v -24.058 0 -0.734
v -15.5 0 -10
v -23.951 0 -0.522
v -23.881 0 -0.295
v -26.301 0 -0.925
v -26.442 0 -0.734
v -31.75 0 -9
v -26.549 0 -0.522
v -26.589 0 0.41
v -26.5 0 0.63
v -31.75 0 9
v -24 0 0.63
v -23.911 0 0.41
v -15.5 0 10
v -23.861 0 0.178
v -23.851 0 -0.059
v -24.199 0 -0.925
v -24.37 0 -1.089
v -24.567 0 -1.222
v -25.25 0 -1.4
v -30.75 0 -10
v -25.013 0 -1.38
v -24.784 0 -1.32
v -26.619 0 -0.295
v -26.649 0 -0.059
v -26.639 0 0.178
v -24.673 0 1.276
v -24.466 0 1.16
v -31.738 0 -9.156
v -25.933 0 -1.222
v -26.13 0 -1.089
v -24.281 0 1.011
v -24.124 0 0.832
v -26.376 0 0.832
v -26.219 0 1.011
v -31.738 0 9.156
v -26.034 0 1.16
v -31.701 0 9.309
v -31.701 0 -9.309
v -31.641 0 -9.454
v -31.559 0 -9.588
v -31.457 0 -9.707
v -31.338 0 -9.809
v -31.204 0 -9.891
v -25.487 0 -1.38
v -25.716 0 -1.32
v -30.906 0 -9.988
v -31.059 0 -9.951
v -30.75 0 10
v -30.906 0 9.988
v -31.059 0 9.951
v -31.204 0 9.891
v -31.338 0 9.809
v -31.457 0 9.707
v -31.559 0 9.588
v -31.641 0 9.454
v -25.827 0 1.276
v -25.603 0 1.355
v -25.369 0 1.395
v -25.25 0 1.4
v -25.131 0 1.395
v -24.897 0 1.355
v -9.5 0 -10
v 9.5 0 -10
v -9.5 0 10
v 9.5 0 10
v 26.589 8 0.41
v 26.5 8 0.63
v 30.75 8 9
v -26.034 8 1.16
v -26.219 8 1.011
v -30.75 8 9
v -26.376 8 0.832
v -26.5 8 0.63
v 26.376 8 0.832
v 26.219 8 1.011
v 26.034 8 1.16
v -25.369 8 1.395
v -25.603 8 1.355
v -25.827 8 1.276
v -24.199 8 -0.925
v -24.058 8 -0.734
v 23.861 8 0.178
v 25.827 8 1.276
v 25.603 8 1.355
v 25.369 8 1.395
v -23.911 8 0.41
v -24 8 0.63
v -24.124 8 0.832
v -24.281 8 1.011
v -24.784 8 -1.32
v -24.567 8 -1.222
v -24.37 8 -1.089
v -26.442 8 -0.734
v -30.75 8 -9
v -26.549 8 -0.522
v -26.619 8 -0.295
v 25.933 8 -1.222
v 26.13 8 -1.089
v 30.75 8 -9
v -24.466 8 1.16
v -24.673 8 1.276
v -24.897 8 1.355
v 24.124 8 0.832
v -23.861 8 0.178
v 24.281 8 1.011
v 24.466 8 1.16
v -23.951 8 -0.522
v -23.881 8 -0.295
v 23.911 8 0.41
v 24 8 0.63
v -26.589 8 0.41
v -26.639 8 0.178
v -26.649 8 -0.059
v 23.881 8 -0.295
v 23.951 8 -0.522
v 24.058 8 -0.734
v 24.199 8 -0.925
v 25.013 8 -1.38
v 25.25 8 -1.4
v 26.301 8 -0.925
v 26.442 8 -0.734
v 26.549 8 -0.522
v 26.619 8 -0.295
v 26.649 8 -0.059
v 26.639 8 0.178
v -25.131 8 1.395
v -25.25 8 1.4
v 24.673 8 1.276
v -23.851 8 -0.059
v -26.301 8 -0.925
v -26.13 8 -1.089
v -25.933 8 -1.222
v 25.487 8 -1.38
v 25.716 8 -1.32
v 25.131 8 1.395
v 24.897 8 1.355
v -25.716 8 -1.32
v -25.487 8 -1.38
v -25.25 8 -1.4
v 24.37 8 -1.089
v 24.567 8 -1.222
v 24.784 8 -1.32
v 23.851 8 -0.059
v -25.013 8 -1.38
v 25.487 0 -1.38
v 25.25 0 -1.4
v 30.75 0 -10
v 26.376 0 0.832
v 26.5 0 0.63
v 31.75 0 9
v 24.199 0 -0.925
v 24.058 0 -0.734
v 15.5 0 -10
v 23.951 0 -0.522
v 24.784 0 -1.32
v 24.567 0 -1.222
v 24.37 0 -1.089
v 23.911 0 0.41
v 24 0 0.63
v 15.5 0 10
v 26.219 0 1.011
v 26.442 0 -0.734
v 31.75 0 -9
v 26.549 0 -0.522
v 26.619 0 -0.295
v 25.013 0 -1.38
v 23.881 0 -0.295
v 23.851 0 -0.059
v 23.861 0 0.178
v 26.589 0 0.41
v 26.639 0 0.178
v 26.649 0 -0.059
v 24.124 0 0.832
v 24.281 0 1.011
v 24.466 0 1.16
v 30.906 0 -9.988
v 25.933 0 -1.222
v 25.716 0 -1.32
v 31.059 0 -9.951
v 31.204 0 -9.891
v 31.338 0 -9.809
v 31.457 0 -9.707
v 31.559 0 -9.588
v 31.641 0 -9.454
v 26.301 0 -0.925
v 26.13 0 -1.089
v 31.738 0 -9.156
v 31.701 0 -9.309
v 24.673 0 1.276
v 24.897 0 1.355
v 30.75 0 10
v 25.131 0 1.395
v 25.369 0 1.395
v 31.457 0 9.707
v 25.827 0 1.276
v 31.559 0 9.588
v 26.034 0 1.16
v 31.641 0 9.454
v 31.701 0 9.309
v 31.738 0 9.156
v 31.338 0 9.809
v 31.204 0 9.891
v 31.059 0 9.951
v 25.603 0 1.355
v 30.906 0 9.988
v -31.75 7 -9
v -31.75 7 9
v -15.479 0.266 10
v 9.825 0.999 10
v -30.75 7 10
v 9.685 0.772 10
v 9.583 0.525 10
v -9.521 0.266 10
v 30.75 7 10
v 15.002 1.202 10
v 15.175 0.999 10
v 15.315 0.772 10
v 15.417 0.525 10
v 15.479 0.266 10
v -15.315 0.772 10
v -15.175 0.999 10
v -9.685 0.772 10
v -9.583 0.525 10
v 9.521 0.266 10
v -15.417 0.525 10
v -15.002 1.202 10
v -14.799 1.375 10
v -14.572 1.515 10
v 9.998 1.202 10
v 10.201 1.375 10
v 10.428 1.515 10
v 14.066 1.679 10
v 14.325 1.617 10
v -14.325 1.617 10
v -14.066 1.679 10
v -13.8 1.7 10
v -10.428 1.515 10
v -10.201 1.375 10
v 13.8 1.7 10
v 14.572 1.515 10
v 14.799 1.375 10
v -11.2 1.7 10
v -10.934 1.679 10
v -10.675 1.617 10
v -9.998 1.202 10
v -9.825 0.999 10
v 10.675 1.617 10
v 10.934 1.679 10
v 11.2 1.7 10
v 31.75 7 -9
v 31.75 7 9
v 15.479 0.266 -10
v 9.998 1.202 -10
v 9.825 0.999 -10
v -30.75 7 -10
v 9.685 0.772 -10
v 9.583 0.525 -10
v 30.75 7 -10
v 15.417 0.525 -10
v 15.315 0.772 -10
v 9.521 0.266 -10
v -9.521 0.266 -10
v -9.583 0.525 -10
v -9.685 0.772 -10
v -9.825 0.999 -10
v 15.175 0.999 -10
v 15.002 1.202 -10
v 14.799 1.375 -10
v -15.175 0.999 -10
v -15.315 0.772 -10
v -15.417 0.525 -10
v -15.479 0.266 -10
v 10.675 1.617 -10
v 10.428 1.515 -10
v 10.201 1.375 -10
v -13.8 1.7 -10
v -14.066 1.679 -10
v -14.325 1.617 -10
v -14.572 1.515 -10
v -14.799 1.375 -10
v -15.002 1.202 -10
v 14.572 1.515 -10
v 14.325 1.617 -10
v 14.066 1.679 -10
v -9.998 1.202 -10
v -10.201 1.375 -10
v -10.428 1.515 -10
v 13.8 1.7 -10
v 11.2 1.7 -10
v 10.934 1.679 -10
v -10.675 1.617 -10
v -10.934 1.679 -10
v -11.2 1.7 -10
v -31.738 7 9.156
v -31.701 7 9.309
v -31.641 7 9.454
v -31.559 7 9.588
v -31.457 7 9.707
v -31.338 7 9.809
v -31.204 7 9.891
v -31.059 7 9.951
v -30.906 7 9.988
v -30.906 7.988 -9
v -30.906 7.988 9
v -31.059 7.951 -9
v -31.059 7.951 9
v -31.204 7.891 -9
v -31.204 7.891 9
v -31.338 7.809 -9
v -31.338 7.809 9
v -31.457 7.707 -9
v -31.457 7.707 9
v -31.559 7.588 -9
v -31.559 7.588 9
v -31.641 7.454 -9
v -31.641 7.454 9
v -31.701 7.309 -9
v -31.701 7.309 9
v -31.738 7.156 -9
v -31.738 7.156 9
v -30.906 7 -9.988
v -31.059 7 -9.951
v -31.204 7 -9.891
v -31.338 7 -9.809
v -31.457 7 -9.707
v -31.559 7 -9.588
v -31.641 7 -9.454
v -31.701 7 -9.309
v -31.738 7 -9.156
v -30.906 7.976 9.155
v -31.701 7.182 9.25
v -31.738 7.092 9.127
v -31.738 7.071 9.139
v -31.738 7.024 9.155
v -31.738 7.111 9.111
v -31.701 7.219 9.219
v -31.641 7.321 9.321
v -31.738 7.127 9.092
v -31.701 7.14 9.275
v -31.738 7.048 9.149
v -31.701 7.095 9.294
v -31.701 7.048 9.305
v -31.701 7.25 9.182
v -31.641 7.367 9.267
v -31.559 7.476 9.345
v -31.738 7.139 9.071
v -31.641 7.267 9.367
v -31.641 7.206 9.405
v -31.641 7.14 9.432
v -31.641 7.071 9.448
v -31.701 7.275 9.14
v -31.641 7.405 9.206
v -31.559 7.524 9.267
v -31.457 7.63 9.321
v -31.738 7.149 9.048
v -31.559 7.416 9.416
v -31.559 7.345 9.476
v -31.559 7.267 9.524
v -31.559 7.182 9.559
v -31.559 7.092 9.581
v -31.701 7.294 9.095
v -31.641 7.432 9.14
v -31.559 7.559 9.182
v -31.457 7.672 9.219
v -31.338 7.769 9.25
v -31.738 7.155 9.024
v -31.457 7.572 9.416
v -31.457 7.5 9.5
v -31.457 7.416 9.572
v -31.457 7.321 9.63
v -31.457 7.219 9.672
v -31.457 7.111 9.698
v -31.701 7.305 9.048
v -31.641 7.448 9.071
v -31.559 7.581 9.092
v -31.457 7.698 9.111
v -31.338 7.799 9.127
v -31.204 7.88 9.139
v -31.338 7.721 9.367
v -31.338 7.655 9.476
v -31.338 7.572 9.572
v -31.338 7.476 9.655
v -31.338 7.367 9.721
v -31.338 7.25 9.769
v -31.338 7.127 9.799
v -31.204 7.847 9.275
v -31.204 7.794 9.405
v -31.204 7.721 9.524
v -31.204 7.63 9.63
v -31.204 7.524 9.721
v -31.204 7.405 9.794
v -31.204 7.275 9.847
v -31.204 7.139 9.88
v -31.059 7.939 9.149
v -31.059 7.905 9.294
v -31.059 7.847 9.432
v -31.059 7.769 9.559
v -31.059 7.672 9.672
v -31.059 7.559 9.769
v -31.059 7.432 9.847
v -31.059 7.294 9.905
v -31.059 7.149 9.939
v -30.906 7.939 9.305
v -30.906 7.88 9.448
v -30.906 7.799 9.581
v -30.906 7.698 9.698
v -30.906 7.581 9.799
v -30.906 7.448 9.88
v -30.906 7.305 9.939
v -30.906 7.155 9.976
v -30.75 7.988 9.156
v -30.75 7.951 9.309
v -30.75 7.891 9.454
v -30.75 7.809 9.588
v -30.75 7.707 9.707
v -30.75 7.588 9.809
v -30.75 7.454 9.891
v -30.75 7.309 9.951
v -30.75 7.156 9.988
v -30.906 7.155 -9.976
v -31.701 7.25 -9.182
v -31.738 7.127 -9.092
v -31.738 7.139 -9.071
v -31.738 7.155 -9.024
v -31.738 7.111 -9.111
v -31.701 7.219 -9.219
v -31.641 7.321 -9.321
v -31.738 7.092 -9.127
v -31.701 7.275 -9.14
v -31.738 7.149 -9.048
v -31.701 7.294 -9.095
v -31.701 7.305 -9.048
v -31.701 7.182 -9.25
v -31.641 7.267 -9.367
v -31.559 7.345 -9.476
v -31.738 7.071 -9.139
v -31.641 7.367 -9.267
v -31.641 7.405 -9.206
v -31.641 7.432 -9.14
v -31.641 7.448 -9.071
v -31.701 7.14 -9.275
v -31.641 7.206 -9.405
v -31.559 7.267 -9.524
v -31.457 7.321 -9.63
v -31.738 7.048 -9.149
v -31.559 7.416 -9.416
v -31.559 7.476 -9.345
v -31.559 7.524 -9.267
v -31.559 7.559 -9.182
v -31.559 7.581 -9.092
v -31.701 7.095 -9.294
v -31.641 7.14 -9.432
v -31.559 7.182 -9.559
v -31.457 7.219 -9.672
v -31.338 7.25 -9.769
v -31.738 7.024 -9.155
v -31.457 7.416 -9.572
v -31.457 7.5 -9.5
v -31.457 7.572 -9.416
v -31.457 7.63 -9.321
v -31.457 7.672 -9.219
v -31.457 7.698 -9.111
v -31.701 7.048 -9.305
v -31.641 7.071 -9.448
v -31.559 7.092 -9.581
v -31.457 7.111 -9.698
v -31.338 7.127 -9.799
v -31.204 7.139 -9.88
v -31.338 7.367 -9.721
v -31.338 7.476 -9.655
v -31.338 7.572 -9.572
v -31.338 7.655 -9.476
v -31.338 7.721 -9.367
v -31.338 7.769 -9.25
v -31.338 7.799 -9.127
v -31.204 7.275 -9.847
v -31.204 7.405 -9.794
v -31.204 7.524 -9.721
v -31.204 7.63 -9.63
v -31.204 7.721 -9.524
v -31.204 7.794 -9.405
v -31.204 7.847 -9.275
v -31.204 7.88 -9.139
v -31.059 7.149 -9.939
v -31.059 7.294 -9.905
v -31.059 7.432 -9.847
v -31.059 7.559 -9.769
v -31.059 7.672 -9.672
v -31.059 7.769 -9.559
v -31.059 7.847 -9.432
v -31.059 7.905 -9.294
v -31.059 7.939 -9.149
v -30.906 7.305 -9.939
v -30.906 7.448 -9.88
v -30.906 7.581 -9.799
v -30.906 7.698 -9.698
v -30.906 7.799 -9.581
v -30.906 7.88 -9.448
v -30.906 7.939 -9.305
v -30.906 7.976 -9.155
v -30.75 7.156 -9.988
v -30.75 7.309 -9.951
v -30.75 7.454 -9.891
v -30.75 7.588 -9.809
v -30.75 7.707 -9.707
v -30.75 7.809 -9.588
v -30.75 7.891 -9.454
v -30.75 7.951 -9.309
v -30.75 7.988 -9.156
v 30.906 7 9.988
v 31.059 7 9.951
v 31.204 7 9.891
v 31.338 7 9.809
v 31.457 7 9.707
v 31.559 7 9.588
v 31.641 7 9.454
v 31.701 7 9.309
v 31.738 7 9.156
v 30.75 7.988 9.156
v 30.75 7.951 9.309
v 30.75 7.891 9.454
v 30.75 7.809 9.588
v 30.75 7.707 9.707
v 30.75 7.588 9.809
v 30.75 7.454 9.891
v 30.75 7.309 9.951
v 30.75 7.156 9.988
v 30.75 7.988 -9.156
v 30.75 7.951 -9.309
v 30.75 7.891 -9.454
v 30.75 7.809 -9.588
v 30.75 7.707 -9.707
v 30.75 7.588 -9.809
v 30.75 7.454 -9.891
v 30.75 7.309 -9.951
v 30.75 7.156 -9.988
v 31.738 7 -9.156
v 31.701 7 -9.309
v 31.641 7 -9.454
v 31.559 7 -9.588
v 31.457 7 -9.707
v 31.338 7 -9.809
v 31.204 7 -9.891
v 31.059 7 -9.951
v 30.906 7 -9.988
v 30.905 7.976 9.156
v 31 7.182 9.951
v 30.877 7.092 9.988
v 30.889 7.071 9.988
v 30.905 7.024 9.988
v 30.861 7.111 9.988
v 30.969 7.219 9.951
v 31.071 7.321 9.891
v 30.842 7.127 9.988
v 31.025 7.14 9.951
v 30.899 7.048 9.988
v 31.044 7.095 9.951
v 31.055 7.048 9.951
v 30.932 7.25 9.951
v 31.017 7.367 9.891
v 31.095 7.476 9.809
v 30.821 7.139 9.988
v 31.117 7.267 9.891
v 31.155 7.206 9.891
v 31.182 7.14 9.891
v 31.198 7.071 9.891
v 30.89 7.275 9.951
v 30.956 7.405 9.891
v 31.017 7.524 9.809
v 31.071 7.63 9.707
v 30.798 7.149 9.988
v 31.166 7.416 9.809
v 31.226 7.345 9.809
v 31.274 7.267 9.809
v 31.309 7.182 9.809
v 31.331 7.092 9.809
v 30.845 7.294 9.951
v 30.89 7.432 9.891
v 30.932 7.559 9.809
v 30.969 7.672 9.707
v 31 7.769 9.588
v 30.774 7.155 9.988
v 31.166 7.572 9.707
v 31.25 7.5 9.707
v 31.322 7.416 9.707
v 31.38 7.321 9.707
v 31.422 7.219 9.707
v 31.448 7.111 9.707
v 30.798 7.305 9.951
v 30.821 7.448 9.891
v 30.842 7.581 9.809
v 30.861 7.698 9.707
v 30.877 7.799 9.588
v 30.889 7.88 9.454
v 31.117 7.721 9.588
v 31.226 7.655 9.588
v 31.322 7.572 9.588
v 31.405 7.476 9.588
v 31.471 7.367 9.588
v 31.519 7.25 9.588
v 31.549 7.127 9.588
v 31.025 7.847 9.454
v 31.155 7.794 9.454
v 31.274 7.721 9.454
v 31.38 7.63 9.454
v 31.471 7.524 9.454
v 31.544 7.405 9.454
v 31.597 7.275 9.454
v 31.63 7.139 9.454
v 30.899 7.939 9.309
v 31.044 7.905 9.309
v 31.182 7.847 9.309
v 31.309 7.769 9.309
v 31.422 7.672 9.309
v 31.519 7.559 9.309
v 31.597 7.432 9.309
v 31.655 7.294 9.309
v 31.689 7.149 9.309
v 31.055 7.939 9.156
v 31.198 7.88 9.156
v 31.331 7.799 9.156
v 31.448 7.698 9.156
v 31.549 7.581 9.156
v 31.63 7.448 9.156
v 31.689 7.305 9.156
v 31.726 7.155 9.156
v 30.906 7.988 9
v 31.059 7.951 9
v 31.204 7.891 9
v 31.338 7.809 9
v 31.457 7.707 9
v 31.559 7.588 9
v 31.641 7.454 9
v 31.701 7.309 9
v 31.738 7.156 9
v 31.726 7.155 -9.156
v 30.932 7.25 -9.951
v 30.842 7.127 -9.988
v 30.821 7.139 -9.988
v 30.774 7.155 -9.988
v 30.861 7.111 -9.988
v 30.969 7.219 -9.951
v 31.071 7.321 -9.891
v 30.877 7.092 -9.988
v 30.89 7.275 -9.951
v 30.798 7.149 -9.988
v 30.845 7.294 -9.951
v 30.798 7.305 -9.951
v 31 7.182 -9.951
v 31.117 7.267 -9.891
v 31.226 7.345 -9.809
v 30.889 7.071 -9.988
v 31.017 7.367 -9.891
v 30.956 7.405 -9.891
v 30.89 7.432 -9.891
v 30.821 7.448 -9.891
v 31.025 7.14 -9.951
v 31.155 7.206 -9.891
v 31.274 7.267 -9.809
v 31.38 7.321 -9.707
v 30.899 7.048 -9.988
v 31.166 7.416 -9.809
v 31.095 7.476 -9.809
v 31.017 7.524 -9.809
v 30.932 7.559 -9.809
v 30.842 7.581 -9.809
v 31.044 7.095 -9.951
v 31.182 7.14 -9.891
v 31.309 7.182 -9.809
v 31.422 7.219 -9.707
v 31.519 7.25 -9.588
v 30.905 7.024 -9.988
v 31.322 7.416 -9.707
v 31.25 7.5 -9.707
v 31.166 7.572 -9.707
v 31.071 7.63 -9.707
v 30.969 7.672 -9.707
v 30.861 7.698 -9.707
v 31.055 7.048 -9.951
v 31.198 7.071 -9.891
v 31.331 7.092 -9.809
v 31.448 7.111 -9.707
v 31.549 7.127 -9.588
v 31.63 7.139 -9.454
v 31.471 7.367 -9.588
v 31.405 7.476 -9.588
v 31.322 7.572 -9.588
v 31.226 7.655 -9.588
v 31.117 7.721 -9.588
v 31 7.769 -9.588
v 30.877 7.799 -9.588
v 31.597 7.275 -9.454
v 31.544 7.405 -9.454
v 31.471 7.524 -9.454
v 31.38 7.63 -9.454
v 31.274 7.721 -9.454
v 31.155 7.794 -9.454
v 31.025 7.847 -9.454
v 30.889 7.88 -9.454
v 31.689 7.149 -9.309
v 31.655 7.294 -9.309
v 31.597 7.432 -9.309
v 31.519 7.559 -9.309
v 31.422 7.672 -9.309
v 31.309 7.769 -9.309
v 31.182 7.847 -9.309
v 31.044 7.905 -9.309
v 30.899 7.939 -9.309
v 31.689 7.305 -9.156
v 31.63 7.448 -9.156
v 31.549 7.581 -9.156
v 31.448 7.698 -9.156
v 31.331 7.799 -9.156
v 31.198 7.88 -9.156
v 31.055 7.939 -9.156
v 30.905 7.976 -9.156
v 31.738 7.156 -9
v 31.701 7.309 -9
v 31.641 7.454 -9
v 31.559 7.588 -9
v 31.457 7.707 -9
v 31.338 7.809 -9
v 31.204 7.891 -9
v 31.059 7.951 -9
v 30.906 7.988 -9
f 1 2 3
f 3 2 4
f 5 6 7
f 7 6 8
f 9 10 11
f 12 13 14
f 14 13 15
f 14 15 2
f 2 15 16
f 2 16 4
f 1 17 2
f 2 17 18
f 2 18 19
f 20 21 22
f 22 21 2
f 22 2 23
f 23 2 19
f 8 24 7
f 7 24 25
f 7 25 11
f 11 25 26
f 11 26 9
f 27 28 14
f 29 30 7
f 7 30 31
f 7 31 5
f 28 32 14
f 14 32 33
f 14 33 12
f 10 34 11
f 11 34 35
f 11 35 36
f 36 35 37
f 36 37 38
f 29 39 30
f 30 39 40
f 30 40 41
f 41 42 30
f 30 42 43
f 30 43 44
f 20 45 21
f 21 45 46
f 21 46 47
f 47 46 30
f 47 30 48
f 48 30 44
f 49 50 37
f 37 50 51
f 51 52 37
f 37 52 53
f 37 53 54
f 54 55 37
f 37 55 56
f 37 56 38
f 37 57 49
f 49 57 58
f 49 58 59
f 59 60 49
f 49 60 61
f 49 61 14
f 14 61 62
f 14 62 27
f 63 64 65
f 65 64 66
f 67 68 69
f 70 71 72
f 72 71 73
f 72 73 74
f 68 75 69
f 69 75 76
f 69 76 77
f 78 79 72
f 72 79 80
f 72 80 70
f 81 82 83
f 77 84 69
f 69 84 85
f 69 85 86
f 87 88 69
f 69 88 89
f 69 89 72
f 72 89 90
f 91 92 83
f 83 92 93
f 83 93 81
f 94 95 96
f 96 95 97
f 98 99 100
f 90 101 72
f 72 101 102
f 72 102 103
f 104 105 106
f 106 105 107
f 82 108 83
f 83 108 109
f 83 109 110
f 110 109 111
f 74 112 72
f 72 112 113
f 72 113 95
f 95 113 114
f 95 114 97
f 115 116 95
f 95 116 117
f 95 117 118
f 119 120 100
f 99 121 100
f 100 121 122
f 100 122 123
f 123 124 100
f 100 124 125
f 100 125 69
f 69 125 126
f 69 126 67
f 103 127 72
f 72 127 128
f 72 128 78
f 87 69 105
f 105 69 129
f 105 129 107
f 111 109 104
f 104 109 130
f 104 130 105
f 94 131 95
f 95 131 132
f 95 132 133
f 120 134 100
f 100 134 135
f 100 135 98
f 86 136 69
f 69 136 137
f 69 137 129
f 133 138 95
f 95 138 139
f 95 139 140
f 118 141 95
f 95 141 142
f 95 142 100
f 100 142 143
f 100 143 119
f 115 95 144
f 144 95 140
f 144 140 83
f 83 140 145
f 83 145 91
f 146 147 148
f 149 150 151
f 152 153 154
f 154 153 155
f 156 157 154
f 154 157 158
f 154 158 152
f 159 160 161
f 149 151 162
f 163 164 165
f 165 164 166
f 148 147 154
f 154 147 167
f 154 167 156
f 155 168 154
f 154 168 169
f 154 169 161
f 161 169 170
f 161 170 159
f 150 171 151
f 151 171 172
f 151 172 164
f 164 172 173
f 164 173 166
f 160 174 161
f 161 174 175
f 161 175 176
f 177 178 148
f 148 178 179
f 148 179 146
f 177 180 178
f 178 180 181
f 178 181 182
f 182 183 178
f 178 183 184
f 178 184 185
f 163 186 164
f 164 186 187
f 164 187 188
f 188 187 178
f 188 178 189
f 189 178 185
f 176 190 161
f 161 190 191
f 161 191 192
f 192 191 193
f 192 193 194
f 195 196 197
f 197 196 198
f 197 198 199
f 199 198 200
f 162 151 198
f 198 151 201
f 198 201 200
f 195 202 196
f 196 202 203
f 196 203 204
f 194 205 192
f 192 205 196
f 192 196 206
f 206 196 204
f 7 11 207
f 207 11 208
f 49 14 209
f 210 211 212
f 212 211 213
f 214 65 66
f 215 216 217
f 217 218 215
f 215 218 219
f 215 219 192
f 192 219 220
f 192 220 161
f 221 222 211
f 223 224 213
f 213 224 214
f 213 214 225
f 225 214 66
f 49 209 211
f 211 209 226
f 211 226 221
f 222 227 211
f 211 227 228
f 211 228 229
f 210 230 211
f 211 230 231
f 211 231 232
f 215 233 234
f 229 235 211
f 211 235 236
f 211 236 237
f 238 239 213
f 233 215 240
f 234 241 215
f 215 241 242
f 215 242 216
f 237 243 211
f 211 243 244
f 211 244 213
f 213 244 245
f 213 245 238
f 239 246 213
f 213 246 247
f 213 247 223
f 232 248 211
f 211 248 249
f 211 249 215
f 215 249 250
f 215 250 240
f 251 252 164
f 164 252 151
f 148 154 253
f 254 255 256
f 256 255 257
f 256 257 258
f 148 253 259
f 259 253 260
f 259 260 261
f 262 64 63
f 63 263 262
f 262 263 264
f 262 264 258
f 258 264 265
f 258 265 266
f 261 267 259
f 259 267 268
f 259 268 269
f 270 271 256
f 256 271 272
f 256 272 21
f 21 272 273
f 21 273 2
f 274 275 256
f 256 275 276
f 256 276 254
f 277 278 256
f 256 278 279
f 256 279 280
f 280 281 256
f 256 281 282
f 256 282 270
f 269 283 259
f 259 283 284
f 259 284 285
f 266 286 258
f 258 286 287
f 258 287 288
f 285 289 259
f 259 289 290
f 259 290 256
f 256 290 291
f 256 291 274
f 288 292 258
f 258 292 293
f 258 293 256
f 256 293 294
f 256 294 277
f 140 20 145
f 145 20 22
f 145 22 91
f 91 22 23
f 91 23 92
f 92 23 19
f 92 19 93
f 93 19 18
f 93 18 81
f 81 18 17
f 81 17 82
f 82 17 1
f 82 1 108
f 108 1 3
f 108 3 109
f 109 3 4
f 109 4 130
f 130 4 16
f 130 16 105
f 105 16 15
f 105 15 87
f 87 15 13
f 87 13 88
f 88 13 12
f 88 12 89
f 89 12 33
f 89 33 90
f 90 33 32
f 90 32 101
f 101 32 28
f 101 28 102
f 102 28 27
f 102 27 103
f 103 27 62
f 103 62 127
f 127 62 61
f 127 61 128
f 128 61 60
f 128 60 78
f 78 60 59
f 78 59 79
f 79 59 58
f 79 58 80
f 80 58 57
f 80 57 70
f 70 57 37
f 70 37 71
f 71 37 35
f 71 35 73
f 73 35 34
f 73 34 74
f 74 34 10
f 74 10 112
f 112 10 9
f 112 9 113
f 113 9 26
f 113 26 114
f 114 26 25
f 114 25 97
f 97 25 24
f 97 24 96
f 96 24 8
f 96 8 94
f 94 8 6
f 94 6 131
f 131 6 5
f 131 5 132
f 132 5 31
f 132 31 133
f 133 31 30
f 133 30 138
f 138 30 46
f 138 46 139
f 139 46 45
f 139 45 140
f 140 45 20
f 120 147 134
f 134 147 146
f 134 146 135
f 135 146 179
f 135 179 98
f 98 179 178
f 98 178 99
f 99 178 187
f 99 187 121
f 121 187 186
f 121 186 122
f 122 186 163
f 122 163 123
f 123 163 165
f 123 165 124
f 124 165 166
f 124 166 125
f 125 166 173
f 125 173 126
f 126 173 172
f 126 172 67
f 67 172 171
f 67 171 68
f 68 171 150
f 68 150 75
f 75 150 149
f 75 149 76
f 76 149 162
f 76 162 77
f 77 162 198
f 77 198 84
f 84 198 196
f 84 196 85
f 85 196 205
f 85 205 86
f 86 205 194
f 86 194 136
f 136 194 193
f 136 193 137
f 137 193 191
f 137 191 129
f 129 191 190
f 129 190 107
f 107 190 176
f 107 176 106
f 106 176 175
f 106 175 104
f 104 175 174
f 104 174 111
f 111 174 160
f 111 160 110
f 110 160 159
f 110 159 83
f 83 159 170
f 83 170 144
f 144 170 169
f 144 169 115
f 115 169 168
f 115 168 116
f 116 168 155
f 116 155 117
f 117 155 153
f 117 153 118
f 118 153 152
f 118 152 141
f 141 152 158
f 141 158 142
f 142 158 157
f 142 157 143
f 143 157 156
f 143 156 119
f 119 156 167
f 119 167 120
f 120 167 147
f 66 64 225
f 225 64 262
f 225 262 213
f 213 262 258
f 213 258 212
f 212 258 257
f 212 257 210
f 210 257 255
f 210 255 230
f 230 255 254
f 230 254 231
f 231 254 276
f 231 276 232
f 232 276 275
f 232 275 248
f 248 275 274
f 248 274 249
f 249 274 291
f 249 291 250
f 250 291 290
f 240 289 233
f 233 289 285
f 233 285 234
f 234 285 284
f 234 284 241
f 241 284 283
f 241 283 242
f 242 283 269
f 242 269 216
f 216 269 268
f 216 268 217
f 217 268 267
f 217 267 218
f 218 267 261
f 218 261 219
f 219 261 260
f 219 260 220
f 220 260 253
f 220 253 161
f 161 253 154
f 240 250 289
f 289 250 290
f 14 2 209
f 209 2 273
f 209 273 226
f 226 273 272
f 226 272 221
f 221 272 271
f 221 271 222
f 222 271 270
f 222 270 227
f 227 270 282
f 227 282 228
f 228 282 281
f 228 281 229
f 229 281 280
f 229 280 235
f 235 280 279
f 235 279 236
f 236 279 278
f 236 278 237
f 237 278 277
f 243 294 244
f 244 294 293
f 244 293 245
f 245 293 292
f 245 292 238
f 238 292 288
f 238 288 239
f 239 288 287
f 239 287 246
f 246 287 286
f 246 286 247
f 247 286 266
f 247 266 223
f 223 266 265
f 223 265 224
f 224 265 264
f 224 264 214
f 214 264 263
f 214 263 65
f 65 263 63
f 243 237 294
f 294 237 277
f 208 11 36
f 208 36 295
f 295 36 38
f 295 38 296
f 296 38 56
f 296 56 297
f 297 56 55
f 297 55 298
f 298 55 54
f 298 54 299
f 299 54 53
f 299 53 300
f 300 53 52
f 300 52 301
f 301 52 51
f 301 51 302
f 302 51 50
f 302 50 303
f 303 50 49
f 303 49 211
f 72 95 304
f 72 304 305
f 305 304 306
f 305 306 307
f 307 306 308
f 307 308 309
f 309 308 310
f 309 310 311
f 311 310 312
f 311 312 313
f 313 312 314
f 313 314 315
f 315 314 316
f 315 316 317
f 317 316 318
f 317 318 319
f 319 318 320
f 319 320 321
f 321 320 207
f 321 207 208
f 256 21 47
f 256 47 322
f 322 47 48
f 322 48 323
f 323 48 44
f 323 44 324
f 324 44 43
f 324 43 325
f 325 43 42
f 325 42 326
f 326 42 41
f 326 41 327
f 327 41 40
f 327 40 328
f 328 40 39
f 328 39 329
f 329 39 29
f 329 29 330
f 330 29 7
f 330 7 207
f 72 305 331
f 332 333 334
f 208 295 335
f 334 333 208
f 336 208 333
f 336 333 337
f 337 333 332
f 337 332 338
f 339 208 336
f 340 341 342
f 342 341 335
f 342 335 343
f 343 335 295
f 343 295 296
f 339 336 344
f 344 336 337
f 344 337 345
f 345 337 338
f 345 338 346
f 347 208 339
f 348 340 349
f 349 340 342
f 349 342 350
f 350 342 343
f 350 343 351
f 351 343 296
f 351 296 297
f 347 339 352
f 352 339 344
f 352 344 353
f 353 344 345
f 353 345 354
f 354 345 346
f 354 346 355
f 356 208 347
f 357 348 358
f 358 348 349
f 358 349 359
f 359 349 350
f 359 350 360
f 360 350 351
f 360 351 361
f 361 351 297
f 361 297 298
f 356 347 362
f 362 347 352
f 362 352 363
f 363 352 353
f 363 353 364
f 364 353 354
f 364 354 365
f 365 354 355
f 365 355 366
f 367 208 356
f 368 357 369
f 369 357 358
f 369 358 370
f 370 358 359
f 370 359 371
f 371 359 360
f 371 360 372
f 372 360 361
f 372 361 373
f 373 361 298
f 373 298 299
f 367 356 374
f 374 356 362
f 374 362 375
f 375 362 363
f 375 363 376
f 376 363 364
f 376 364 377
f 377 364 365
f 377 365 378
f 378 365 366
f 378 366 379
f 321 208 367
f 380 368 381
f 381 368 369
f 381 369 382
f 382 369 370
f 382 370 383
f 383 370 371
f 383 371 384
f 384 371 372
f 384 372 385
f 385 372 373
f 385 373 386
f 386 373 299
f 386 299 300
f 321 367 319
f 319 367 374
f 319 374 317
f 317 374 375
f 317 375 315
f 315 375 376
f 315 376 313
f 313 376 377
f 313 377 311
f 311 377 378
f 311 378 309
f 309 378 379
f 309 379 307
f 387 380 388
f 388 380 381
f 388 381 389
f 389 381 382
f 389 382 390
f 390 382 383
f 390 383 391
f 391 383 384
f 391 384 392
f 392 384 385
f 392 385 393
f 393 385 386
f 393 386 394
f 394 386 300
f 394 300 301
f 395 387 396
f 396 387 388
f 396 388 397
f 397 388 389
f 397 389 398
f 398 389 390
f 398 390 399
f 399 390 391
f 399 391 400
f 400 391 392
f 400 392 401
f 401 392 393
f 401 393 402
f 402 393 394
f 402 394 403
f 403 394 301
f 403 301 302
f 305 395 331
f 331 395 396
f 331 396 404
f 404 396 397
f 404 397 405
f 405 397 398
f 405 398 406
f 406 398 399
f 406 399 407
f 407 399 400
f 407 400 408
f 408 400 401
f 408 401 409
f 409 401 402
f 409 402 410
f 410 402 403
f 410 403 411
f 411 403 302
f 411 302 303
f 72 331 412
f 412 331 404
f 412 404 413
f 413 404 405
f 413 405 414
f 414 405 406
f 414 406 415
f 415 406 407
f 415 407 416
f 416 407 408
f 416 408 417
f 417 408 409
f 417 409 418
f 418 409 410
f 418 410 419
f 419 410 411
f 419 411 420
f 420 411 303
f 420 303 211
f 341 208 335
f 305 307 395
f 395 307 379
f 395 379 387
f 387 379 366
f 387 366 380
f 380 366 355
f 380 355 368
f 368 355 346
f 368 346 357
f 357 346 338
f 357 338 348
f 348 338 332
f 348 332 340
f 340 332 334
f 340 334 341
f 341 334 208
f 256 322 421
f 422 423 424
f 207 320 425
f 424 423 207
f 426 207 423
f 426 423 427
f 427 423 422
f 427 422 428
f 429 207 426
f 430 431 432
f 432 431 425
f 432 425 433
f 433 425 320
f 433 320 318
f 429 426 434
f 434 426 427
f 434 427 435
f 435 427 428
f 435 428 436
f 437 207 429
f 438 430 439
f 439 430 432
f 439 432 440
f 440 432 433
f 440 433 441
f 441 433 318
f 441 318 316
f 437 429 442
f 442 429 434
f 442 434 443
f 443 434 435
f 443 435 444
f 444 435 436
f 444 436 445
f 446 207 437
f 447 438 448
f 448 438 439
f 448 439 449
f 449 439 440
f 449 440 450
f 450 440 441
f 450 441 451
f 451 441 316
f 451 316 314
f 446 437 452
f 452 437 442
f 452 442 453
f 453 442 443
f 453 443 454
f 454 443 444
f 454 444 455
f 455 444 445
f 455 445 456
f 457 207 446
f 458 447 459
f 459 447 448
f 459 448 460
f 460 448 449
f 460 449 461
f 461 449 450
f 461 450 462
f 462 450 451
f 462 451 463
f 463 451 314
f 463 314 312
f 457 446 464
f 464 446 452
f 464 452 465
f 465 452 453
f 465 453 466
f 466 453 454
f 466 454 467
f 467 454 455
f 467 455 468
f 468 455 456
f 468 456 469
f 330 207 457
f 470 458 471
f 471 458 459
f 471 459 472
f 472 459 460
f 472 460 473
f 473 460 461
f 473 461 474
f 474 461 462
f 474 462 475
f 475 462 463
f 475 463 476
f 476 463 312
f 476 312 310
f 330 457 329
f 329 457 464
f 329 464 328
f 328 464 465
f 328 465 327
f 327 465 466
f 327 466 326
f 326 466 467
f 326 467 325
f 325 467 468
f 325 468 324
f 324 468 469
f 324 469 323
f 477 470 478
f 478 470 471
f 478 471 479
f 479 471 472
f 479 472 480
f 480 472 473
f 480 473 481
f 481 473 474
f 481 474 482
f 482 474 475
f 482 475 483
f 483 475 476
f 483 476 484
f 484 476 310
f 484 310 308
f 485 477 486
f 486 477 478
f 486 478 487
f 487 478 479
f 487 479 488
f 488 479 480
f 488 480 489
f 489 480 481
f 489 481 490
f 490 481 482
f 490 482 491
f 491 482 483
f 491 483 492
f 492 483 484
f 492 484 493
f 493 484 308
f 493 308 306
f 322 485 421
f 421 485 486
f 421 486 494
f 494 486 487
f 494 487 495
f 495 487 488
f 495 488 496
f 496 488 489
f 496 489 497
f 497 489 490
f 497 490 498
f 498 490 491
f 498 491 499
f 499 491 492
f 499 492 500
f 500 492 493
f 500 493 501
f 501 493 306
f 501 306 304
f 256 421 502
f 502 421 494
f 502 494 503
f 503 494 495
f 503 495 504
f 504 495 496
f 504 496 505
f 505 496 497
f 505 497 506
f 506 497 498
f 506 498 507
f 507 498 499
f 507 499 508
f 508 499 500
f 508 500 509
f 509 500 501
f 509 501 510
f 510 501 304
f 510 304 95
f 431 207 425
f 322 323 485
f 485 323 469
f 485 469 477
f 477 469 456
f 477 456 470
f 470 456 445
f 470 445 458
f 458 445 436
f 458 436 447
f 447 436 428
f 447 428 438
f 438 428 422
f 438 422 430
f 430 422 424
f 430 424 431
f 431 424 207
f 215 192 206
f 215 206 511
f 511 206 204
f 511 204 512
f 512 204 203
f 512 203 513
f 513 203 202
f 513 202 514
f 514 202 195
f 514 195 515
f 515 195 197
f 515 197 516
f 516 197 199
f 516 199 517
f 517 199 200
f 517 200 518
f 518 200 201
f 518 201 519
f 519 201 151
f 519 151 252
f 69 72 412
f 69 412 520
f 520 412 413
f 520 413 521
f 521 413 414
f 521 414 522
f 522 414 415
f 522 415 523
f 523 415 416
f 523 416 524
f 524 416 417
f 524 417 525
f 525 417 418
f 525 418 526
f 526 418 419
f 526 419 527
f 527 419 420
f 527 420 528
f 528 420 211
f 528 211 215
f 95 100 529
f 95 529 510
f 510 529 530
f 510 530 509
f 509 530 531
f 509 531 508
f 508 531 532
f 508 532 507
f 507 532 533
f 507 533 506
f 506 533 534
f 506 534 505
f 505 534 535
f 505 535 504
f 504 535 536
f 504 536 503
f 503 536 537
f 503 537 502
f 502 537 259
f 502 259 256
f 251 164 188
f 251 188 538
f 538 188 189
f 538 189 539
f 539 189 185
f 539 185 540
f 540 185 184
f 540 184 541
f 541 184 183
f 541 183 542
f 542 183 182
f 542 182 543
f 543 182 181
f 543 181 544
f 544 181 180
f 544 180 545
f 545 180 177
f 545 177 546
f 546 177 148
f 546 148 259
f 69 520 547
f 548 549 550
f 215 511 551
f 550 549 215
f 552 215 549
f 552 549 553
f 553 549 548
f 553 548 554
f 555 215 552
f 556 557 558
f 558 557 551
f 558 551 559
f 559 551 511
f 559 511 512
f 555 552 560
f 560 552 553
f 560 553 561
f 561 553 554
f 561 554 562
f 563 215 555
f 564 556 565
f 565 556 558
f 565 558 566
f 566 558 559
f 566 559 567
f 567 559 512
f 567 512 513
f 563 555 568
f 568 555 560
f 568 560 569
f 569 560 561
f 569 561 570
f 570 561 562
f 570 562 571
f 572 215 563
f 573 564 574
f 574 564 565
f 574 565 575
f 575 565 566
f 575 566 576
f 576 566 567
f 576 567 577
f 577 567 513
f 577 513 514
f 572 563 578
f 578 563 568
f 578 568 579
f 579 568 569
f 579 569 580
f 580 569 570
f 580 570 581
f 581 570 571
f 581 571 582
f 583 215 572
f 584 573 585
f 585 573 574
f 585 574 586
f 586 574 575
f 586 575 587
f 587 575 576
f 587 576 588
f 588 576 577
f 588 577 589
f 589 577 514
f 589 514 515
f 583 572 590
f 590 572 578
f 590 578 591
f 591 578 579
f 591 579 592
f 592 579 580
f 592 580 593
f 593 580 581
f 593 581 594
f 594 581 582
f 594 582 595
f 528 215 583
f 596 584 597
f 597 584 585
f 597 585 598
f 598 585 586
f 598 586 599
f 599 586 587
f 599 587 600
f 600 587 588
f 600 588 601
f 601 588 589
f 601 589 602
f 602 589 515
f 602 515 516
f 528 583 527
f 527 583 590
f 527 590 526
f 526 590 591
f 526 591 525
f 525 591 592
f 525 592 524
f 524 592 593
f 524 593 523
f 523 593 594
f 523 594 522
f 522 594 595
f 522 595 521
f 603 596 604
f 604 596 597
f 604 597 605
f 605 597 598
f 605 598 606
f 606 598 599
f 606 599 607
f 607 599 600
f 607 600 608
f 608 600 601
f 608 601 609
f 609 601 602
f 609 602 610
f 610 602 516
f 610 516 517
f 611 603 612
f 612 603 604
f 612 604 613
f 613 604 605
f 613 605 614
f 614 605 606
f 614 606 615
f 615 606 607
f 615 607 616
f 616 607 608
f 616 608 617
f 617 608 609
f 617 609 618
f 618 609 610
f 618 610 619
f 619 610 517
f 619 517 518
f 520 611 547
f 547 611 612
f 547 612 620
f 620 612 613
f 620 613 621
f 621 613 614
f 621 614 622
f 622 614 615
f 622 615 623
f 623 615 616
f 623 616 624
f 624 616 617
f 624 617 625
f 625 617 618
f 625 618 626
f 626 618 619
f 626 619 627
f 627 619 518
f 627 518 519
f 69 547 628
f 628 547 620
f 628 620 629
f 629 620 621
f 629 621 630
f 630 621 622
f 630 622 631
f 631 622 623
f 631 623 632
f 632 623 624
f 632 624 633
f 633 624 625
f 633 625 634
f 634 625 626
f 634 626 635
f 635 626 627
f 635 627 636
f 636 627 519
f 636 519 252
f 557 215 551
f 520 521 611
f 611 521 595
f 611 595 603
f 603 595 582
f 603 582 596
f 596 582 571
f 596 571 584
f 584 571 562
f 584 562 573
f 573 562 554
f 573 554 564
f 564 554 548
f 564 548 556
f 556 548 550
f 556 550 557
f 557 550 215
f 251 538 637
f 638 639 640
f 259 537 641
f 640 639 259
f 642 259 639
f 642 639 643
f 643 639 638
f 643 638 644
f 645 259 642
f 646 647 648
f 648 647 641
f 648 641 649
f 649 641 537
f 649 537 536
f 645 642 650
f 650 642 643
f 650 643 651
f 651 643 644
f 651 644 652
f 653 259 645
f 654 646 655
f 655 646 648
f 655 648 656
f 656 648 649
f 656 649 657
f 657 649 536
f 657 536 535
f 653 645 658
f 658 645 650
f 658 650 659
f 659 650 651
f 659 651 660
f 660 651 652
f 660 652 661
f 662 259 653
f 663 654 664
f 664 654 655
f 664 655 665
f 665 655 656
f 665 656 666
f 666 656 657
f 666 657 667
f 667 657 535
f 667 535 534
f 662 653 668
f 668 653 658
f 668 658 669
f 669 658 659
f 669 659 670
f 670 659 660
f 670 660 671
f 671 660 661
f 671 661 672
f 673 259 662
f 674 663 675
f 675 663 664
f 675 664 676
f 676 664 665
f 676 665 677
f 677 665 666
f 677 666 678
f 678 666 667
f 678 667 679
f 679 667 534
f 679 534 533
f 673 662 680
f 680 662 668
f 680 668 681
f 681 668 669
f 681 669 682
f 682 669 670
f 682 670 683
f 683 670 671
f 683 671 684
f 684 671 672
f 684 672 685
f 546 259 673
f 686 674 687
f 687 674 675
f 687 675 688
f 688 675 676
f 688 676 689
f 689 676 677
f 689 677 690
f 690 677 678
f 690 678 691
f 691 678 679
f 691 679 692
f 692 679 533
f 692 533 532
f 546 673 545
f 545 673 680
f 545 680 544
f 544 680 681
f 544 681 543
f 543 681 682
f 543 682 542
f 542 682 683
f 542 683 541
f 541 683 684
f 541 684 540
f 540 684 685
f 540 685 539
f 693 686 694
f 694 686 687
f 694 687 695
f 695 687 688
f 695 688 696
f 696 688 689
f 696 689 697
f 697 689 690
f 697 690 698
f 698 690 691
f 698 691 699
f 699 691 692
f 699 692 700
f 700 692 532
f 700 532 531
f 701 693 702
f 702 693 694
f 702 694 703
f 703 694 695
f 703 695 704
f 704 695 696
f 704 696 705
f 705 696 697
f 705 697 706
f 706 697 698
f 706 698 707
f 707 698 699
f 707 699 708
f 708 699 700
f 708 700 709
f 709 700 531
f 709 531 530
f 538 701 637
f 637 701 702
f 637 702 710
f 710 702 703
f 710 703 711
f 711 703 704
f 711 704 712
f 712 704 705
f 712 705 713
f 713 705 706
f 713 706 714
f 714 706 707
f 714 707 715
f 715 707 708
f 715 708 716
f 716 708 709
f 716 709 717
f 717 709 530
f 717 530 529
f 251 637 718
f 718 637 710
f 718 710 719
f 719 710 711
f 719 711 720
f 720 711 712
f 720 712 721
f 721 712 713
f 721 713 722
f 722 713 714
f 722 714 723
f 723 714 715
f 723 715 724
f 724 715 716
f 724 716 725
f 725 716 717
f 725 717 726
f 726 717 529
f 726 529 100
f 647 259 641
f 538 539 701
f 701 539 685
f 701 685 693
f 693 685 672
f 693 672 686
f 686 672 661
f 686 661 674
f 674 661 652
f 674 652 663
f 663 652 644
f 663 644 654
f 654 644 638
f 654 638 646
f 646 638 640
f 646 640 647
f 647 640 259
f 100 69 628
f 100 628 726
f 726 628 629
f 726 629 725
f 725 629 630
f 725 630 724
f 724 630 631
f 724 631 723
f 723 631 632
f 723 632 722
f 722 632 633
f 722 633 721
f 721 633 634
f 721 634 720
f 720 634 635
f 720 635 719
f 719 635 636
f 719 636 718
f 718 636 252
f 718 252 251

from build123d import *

# Parameters (mm, degrees)
SKETCH1_W            = 63.5
SKETCH1_H            = 20
SKETCH1_R            = 1.4
BASE_DEPTH           = 8
WIRE_GROOVES_DEPTH   = 39.833780398
F_1MM_EDGE_FILLETS_R = 1


with BuildPart() as part:
    # Sketch1 → Base (new body)
    with BuildSketch(Plane(origin=(0, 0, 0), x_dir=(1, 0, 0), z_dir=(0, 1, 0))):
        Rectangle(SKETCH1_W, SKETCH1_H)
        with Locations((-25.25, 0)):
            Circle(SKETCH1_R, mode=Mode.SUBTRACT)
        with Locations((25.25, 0)):
            Circle(SKETCH1_R, mode=Mode.SUBTRACT)
    extrude(amount=BASE_DEPTH)

    # Sketch2 → Wire Grooves (cut, through all)
    with BuildSketch(Plane(origin=(0, 10, -10), x_dir=(1, 0, 0), z_dir=(0, 0, -1))):
        with BuildLine():
            Line((-15.5, 10), (-9.5, 10))
            ThreePointArc((-9.5, 10), (-9.997918472, 8.797918472), (-11.2, 8.3))
            Line((-11.2, 8.3), (-13.8, 8.3))
            ThreePointArc((-13.8, 8.3), (-15.002081528, 8.797918472), (-15.5, 10))
        make_face()
        with BuildLine():
            Line((9.5, 10), (15.5, 10))
            ThreePointArc((15.5, 10), (15.002081528, 8.797918472), (13.8, 8.3))
            Line((13.8, 8.3), (11.2, 8.3))
            ThreePointArc((11.2, 8.3), (9.997918472, 8.797918472), (9.5, 10))
        make_face()
    extrude(amount=-WIRE_GROOVES_DEPTH, mode=Mode.SUBTRACT)

    # 1mm Edge Fillets
    f_1mm_edge_fillets_edges = [part.edges().sort_by_distance(p)[0] for p in [
        (-31.75, 4, -10),
        (0, 8, -10),
        (31.75, 4, -10),
        (31.75, 4, 10),
        (31.75, 8, 0),
        (-31.75, 8, 0),
        (0, 8, 10),
        (-31.75, 4, 10),
    ]]
    fillet(f_1mm_edge_fillets_edges, radius=F_1MM_EDGE_FILLETS_R)


solid = part.part
